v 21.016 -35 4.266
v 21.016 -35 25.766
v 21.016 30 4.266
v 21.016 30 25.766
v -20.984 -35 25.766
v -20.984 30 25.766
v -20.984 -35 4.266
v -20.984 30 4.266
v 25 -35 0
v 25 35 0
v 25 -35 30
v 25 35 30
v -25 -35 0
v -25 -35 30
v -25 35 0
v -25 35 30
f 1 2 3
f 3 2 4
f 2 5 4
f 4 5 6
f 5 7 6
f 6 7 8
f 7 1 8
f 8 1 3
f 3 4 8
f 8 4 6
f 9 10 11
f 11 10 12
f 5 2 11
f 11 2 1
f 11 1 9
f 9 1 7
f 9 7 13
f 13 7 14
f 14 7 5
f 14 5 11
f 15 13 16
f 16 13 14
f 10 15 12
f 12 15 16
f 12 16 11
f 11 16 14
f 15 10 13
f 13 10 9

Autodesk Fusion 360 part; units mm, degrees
sketch "Sketch1" plane through (0, 0, 0) normal (0, 0, 1) x (1, 0, 0)
  line L0 (25, -35) -> (-25, -35)
  line L1 (-25, -35) -> (-25, 35)
  line L2 (-25, 35) -> (25, 35)
  line L3 (25, 35) -> (25, -35)
  line L4 (25, -35) -> (-25, 35) construction
  line L5 (-25, -35) -> (25, 35) construction
  dimension "d1" = 50
  dimension "d2" = 70
extrude "Extrude1" add sketch "Sketch1" along normal blind 30
sketch "Sketch2" plane through (0, 35, 0) normal (0, 1, 0) x (-1, 0, 0)
  line L0 (-25, 0) -> (25, 0)
  line L1 (25, 0) -> (25, 30)
  line L2 (25, 30) -> (-25, 30)
  line L3 (-25, 30) -> (-25, 0)
sketch "Sketch3" plane through (0, -35, 0) normal (0, -1, 0) x (1, 0, 0)
  line L0 (-25, 0) -> (25, 0)
  line L1 (25, 0) -> (25, 30)
  line L2 (25, 30) -> (-25, 30)
  line L3 (-25, 30) -> (-25, 0)
  line L4 (-20.9844, 25.7659) -> (21.0156, 25.7659)
  line L5 (21.0156, 25.7659) -> (21.0156, 4.2659)
  line L6 (21.0156, 4.2659) -> (-20.9844, 4.2659)
  line L7 (-20.9844, 4.2659) -> (-20.9844, 25.7659)
  dimension "d5" = 42
  dimension "d6" = 21.5
extrude "Extrude2" cut sketch "Sketch3" against normal blind 65 contours L4 L5 L6 L7
